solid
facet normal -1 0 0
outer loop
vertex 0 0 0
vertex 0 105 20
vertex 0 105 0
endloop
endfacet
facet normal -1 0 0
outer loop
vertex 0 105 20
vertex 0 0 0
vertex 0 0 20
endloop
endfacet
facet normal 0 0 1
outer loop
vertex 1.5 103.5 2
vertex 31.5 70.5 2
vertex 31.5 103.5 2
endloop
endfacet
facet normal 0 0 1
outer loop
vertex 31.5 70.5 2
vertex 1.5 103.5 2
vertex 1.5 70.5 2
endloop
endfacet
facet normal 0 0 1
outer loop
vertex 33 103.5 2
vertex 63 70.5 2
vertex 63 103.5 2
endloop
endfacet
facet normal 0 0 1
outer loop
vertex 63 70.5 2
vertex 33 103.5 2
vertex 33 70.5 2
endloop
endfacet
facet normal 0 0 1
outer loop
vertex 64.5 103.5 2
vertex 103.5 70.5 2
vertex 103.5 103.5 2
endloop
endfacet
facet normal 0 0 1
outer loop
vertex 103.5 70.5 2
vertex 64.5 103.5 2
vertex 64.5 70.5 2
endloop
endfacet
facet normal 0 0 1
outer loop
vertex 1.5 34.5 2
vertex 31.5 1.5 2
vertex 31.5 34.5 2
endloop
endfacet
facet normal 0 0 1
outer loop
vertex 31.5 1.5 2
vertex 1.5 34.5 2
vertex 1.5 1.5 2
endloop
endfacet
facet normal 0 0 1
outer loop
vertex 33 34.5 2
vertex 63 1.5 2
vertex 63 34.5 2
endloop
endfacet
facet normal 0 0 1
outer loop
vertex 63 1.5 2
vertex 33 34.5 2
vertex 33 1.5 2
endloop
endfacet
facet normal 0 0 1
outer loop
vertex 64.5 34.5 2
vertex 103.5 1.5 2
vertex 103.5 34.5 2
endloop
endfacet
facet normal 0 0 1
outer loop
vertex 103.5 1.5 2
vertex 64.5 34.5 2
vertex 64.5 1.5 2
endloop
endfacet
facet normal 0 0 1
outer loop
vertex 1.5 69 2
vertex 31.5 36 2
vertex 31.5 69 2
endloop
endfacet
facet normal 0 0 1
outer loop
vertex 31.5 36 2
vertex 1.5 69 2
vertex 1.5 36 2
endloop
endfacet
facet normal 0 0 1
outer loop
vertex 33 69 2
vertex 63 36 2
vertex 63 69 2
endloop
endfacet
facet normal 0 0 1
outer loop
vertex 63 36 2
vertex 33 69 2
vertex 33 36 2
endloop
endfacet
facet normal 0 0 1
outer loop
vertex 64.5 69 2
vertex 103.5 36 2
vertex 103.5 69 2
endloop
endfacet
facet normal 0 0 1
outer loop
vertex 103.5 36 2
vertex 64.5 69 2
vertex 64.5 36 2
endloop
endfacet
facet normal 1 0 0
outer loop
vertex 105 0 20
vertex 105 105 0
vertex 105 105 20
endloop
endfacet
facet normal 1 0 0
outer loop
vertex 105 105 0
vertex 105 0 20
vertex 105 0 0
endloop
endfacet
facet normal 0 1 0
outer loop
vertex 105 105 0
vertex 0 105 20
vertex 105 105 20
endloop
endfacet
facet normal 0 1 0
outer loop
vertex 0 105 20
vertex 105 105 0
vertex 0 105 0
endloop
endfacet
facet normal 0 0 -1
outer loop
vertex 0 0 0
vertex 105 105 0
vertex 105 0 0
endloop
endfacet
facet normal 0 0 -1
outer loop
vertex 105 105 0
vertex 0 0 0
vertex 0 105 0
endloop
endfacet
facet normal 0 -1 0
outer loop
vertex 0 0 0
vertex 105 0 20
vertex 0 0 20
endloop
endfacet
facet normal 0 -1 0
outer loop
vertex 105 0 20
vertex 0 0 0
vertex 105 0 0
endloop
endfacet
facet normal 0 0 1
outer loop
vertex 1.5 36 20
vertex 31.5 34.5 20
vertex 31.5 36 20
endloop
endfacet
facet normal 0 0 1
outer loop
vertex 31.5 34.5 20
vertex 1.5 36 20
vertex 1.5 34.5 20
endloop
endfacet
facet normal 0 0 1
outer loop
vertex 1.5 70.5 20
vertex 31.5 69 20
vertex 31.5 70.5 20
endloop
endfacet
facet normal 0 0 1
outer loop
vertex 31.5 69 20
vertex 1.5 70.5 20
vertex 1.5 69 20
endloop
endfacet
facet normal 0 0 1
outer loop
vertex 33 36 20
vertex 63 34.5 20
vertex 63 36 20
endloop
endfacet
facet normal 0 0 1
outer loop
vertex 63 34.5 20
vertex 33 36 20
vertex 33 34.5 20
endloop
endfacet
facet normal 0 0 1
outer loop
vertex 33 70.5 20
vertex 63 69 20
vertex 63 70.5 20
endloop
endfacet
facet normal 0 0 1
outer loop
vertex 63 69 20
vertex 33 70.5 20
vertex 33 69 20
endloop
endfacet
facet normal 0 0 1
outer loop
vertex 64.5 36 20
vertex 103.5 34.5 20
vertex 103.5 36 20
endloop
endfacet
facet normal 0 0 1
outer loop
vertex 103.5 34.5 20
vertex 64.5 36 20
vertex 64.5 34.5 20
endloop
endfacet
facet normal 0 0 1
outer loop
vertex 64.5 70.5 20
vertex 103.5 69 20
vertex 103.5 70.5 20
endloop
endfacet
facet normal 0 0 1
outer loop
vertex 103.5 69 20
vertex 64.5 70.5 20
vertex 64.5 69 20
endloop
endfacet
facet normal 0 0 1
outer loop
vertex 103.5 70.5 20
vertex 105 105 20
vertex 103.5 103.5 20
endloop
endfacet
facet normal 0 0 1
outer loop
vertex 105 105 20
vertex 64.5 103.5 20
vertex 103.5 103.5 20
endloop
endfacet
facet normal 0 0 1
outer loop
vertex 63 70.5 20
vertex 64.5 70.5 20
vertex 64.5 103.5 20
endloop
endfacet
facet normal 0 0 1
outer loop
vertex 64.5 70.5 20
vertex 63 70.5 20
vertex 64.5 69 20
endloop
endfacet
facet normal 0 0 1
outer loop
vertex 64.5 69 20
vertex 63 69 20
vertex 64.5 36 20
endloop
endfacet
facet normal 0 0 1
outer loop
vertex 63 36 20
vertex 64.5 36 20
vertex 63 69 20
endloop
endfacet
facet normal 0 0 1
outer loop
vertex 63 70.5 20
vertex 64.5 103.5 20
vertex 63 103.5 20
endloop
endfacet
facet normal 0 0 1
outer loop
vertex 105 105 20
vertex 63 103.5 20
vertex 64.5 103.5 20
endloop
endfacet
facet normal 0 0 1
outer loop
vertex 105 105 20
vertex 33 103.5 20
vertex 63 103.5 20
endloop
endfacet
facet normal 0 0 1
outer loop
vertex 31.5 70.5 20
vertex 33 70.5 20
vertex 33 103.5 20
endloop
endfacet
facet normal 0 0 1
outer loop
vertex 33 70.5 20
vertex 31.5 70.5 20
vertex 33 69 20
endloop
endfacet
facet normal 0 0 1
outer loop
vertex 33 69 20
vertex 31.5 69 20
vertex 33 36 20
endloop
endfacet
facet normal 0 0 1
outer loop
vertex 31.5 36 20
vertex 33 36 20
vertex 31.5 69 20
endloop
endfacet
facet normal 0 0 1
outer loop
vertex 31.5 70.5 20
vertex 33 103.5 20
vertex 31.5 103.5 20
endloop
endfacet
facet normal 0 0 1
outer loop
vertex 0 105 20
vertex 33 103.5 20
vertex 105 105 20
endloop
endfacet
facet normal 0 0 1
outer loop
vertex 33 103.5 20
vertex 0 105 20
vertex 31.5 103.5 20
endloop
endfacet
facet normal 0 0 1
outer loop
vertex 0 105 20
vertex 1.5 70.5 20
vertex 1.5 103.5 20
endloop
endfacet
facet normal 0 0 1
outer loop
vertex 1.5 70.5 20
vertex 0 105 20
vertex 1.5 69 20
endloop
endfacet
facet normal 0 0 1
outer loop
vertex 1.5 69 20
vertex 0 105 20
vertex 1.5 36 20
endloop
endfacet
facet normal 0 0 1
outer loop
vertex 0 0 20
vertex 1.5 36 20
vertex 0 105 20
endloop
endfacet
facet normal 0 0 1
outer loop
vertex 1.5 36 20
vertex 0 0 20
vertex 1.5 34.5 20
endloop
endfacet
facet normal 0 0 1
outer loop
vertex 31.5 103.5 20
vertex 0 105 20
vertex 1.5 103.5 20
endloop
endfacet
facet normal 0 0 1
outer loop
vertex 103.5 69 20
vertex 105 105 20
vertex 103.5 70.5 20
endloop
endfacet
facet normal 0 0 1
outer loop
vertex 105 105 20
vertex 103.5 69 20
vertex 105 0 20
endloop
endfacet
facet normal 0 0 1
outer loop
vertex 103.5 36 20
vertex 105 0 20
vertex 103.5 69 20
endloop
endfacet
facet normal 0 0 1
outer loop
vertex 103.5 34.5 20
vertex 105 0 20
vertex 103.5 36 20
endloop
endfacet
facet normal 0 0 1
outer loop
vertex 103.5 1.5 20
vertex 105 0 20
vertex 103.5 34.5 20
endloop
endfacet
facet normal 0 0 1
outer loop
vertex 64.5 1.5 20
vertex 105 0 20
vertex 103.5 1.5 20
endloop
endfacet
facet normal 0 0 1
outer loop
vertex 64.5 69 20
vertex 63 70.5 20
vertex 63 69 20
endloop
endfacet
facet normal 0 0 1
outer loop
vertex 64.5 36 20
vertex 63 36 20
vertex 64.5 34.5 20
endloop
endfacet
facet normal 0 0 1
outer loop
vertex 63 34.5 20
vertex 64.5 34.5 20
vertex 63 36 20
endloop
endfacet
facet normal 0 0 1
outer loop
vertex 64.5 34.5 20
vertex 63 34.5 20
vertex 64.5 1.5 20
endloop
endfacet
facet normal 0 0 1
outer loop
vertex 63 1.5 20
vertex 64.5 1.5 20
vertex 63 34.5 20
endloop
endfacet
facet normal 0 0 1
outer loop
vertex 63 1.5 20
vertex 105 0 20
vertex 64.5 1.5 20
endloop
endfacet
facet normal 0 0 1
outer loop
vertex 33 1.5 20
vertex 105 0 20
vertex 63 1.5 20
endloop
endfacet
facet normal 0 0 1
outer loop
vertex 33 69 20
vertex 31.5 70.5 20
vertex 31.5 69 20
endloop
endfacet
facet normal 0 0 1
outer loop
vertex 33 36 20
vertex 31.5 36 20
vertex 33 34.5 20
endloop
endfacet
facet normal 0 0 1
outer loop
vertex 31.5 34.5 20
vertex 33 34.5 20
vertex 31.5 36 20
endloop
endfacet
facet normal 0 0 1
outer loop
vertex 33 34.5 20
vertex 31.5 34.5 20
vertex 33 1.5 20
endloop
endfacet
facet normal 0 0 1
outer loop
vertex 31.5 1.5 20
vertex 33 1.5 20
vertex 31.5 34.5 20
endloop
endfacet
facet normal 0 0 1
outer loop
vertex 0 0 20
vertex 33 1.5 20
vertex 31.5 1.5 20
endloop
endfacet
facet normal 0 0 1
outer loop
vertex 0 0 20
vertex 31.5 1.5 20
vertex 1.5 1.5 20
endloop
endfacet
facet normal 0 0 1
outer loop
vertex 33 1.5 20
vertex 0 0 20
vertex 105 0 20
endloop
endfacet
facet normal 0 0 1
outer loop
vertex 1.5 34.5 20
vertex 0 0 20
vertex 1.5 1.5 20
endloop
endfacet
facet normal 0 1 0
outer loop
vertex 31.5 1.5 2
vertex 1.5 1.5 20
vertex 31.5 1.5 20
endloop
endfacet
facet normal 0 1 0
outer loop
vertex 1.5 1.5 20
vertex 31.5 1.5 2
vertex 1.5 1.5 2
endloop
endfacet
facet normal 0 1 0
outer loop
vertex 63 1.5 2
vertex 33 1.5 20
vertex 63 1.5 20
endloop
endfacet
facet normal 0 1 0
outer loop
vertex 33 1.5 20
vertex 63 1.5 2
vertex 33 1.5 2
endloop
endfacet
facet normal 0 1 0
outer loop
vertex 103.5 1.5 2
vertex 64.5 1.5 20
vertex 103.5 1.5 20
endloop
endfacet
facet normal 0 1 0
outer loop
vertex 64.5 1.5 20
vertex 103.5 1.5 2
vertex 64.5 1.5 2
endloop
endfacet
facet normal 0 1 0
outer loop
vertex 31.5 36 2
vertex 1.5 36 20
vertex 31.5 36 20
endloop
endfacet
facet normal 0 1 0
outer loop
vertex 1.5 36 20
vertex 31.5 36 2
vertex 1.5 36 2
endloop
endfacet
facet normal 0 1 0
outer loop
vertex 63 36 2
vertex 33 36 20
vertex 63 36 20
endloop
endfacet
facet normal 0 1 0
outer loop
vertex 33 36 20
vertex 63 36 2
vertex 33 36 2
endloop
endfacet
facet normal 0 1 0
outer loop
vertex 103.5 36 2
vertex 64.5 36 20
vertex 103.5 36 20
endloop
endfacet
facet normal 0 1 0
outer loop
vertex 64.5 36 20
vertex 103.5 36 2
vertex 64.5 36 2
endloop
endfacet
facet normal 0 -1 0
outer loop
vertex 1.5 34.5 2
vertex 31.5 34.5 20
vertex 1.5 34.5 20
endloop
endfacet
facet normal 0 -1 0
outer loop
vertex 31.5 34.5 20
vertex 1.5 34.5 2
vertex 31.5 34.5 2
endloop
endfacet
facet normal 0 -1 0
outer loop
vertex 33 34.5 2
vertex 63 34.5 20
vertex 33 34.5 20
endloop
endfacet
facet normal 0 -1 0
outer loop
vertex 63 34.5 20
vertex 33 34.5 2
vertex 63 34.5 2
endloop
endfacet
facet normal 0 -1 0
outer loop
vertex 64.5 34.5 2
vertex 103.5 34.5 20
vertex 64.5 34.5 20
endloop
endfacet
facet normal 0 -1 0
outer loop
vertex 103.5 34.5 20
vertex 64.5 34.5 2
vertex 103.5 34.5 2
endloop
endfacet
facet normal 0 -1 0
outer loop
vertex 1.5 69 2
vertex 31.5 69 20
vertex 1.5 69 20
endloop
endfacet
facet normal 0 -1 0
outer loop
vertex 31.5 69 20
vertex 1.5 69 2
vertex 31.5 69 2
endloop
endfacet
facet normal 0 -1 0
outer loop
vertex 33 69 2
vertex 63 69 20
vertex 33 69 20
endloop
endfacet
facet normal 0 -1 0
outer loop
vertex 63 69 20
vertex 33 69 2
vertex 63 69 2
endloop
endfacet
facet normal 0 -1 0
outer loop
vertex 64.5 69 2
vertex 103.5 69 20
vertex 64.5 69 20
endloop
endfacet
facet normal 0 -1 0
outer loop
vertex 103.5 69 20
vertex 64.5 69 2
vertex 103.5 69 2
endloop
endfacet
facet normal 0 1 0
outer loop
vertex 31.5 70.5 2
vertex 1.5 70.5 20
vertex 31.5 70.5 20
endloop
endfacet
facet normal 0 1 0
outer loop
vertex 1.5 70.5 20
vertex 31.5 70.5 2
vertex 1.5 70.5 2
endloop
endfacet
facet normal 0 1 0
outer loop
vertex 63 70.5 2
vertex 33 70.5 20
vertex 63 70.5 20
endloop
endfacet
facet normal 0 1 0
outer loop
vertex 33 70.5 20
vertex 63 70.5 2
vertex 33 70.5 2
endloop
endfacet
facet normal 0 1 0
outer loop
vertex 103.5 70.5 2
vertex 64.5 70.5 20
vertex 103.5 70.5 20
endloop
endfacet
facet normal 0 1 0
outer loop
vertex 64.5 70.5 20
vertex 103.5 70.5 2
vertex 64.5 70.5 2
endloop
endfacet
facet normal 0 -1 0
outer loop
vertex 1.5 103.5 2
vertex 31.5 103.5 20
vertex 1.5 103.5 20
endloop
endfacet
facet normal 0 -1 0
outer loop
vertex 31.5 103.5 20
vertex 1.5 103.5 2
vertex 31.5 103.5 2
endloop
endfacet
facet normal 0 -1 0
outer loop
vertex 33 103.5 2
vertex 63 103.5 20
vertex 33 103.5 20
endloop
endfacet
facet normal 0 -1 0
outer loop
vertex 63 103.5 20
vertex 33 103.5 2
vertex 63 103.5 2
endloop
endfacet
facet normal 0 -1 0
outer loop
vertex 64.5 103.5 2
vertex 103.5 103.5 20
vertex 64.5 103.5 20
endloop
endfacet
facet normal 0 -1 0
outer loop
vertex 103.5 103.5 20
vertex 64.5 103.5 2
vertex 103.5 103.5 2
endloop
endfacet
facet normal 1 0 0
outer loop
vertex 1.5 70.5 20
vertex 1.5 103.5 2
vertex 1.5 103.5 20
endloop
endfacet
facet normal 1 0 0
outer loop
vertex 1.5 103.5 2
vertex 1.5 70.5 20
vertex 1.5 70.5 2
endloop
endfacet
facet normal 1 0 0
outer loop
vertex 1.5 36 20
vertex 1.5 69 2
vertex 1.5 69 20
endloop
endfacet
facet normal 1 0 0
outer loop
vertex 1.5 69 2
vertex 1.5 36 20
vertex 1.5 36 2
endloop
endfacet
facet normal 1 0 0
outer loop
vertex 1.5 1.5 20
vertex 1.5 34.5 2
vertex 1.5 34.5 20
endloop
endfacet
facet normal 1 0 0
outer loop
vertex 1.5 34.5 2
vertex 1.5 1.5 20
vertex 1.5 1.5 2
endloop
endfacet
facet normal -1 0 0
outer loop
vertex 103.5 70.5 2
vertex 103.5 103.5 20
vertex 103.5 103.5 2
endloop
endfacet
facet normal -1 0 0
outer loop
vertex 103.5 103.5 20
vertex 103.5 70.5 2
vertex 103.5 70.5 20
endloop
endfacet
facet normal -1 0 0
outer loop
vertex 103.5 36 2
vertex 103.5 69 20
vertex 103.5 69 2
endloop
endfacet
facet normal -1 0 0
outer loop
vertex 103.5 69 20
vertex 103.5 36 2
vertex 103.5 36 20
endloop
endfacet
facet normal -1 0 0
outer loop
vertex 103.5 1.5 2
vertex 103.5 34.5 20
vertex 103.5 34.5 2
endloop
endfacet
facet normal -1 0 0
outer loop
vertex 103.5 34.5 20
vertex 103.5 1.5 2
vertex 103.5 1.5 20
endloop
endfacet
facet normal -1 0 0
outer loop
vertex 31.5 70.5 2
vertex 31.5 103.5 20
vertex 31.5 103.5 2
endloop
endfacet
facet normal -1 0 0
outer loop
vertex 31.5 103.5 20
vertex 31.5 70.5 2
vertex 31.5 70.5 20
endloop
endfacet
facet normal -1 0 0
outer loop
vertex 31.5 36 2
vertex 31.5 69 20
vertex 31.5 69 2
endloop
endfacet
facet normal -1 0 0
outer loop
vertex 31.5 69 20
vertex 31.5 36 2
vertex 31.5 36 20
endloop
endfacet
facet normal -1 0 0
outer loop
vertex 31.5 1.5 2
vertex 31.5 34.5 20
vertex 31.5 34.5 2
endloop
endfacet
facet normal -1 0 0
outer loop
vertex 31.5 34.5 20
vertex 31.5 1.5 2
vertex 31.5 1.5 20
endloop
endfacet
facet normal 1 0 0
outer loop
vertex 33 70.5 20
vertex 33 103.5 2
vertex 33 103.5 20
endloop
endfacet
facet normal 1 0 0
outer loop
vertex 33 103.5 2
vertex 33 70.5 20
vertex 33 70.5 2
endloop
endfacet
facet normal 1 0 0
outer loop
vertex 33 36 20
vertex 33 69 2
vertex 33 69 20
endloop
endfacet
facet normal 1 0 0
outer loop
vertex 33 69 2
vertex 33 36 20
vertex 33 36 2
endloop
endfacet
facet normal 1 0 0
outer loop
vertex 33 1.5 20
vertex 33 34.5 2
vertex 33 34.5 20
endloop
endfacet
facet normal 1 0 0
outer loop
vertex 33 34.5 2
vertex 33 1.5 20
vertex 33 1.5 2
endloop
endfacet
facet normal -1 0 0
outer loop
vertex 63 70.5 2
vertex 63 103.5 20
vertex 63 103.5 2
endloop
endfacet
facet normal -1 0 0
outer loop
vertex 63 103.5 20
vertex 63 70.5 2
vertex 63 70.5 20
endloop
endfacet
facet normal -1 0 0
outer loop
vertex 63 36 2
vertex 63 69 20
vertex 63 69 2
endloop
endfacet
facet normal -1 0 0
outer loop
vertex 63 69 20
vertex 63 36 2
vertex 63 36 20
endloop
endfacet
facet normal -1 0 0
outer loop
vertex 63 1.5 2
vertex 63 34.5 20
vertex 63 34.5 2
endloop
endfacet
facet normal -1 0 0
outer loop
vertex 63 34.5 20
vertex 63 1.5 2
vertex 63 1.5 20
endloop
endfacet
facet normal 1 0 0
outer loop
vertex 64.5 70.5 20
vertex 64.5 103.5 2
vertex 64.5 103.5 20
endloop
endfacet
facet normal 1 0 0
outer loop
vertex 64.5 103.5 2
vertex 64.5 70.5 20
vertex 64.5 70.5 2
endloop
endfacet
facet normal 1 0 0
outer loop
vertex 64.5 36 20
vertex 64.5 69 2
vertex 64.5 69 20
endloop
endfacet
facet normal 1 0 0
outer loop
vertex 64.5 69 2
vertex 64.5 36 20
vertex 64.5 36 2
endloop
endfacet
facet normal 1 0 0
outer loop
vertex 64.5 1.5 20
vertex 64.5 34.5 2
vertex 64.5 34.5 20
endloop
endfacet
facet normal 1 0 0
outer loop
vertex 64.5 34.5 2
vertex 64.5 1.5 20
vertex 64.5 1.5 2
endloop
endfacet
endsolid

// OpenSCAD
union(){
    
  cube ([105,105,2]);
  translate([0,0,0]) cube ([105,1.5,20]);   
  translate([0,34.5,0]) cube ([105,1.5,20]);   
  translate([0,69,0]) cube ([105,1.5,20]);  
  translate([0,103.5,0]) cube ([105,1.5,20]);   
  translate([0,0,0]) cube ([1.5,105,20]);    
  translate([103.5,0,0]) cube ([1.5,105,20]);   
  translate([31.5,0,0]) cube ([1.5,105,20]);   
  translate([63,0,0]) cube ([1.5,105,20]);   
}
    
